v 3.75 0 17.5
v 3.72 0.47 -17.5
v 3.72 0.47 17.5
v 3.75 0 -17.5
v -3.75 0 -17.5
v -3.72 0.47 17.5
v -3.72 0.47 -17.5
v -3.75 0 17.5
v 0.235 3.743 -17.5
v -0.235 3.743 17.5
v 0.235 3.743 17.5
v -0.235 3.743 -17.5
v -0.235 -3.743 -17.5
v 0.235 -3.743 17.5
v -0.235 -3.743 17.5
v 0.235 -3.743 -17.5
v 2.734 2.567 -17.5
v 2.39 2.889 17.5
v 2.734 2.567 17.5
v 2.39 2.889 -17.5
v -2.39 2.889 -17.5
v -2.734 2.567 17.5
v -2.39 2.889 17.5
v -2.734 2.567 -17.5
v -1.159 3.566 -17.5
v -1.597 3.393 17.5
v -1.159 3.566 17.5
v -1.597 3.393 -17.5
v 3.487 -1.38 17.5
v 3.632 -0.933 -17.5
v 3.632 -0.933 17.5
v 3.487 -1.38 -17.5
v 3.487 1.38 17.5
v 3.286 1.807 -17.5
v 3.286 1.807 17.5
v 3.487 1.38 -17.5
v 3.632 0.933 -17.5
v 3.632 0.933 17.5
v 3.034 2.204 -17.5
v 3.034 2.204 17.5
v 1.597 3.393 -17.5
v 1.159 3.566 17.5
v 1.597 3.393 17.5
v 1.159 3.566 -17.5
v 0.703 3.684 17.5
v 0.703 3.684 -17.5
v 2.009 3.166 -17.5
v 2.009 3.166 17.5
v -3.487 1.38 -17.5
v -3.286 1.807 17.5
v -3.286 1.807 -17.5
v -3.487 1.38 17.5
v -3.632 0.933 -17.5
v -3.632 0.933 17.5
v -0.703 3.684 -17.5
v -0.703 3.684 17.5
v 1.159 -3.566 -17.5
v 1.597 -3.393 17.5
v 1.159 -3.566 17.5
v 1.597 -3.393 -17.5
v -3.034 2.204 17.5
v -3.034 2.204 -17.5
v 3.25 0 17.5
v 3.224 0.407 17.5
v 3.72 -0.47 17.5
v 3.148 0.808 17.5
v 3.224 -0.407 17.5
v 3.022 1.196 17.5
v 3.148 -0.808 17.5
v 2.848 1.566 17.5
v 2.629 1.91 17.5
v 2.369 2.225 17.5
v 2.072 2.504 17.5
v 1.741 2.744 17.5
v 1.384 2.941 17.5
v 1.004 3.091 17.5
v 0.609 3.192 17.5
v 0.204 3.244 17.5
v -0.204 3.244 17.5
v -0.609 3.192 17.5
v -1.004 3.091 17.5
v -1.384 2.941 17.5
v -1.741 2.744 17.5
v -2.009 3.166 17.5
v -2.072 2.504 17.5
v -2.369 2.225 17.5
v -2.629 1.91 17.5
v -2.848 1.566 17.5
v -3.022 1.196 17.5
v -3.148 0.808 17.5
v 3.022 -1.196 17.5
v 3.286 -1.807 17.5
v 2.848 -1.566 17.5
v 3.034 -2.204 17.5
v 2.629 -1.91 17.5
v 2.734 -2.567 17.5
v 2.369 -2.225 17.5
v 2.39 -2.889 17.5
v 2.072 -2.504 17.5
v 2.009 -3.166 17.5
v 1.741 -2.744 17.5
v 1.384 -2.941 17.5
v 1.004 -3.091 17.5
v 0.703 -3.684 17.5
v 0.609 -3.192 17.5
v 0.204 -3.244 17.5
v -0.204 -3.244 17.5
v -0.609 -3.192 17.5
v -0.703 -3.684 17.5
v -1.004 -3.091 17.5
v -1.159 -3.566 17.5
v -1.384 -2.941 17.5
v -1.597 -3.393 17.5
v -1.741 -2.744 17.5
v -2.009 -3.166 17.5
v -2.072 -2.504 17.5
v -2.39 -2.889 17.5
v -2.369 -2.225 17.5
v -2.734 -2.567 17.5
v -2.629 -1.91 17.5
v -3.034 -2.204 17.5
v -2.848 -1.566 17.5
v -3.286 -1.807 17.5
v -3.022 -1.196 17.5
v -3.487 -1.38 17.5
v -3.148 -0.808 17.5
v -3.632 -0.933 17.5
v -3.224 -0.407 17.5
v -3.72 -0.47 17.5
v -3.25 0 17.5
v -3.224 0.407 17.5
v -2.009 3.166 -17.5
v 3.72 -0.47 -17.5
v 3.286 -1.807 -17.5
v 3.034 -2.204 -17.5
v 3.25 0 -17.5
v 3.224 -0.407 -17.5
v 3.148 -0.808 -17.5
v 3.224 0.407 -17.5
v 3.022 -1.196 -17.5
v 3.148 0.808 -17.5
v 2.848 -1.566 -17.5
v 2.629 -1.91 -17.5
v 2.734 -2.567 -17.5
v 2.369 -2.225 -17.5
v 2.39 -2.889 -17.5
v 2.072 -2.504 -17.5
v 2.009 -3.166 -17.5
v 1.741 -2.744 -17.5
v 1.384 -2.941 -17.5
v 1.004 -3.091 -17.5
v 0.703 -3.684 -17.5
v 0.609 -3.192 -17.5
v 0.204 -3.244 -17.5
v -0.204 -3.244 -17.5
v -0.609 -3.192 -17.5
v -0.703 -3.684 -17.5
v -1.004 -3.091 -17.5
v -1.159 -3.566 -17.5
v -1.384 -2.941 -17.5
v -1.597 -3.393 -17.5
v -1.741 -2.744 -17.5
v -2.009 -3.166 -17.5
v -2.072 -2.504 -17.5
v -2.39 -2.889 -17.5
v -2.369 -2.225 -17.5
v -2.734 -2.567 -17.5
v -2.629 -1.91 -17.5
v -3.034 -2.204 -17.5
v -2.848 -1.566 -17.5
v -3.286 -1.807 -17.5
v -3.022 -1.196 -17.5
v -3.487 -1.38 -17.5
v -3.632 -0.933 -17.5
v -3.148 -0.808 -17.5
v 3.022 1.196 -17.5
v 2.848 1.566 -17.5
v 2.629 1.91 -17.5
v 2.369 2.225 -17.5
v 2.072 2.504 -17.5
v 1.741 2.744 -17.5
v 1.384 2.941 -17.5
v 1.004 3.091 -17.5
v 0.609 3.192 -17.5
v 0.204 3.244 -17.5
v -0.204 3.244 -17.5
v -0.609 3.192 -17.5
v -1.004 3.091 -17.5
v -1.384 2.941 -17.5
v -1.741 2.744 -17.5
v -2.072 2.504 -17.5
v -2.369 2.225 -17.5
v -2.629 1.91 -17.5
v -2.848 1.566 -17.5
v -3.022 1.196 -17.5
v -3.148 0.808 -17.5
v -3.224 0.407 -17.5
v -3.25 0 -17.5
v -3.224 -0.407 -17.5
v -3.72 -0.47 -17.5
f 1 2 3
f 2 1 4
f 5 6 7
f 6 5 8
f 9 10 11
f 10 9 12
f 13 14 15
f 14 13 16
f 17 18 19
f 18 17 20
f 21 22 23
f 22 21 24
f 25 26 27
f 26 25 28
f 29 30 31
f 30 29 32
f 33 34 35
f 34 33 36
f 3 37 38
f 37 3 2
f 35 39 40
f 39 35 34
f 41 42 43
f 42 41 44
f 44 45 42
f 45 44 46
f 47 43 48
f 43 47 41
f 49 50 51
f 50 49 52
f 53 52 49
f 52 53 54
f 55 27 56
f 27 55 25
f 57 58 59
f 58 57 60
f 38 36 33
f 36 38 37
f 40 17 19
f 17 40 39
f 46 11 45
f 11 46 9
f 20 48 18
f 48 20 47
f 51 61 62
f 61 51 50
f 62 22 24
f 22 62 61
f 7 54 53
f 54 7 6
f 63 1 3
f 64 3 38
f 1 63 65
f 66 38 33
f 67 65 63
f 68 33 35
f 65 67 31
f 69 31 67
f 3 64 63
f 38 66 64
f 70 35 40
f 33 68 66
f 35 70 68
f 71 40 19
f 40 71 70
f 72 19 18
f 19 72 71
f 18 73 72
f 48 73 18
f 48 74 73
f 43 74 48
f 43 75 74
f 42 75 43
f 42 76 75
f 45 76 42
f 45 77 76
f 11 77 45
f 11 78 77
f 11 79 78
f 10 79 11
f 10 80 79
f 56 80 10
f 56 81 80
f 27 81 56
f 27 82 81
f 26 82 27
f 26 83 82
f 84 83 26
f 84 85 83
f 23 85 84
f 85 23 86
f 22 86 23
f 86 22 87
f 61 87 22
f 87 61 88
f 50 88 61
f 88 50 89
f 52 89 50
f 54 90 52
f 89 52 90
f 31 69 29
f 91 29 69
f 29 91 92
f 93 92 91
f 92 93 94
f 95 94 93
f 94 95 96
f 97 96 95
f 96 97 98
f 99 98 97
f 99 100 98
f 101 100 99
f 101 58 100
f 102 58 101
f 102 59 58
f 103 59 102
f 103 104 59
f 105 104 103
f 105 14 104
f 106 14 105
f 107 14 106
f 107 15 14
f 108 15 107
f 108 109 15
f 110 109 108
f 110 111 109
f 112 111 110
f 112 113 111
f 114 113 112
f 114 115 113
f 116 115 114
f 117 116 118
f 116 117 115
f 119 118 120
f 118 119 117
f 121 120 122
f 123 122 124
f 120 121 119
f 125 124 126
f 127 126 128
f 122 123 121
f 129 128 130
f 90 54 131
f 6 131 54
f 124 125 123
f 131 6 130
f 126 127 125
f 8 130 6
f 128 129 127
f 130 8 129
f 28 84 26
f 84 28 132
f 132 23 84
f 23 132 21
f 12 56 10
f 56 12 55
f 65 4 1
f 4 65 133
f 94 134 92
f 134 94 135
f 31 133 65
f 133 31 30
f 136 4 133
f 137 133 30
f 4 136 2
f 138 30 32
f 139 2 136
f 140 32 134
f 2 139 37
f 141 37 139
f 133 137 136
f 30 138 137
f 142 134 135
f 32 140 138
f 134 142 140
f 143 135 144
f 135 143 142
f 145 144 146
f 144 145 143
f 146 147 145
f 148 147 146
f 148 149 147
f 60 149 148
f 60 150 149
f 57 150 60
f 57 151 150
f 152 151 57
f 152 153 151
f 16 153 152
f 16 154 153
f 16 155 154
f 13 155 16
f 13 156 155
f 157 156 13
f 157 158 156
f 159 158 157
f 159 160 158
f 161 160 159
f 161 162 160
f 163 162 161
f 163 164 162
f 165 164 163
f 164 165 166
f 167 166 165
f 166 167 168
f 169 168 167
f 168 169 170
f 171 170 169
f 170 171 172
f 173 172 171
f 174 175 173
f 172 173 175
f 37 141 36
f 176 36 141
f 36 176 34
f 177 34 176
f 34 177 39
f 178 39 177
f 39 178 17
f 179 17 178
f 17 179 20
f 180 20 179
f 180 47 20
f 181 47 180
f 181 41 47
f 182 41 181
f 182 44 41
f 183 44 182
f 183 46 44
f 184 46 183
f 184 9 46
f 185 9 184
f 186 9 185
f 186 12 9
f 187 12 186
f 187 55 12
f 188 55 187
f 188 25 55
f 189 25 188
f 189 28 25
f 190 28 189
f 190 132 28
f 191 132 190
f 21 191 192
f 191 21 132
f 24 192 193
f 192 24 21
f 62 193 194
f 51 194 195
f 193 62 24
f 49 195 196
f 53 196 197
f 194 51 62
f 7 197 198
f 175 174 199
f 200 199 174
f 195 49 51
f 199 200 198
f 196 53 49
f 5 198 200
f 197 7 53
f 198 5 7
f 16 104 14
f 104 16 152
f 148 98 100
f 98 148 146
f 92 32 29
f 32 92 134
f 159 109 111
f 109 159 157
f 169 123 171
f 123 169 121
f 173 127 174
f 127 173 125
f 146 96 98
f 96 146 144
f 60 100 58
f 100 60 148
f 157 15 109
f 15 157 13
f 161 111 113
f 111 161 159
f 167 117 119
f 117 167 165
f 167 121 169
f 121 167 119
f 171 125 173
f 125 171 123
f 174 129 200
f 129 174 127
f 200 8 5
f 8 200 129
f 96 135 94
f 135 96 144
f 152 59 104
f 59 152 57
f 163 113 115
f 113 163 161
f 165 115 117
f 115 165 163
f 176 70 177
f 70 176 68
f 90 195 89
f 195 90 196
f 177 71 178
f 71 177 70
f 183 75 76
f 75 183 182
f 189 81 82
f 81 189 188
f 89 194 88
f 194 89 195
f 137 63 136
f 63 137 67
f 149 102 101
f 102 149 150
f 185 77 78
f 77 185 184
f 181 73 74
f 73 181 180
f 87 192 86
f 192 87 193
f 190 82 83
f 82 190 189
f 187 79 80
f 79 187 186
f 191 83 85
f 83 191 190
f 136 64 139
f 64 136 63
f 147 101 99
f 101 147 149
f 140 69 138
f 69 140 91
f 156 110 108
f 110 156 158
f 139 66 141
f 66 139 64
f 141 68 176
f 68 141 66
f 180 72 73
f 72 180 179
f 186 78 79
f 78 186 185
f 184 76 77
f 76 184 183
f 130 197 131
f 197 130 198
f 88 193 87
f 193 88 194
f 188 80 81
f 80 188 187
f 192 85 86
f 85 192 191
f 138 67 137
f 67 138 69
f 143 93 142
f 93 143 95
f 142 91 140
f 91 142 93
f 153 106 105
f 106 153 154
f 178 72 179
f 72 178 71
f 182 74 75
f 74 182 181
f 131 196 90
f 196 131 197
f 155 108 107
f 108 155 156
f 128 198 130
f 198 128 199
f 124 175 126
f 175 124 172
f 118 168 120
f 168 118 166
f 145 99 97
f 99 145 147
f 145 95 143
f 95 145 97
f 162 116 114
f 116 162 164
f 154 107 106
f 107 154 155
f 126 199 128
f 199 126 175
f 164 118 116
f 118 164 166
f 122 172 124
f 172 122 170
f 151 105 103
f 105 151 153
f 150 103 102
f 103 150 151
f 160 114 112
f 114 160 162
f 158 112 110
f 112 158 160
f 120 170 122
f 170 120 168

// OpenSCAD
$fn = 50;


difference() {
	union() {
		translate(v = [0, 0, -17.5000000000]) {
			cylinder(h = 35, r = 3.7500000000);
		}
	}
	union() {
		translate(v = [0, 0, -100.0000000000]) {
			cylinder(h = 200, r = 3.2500000000);
		}
	}
}
